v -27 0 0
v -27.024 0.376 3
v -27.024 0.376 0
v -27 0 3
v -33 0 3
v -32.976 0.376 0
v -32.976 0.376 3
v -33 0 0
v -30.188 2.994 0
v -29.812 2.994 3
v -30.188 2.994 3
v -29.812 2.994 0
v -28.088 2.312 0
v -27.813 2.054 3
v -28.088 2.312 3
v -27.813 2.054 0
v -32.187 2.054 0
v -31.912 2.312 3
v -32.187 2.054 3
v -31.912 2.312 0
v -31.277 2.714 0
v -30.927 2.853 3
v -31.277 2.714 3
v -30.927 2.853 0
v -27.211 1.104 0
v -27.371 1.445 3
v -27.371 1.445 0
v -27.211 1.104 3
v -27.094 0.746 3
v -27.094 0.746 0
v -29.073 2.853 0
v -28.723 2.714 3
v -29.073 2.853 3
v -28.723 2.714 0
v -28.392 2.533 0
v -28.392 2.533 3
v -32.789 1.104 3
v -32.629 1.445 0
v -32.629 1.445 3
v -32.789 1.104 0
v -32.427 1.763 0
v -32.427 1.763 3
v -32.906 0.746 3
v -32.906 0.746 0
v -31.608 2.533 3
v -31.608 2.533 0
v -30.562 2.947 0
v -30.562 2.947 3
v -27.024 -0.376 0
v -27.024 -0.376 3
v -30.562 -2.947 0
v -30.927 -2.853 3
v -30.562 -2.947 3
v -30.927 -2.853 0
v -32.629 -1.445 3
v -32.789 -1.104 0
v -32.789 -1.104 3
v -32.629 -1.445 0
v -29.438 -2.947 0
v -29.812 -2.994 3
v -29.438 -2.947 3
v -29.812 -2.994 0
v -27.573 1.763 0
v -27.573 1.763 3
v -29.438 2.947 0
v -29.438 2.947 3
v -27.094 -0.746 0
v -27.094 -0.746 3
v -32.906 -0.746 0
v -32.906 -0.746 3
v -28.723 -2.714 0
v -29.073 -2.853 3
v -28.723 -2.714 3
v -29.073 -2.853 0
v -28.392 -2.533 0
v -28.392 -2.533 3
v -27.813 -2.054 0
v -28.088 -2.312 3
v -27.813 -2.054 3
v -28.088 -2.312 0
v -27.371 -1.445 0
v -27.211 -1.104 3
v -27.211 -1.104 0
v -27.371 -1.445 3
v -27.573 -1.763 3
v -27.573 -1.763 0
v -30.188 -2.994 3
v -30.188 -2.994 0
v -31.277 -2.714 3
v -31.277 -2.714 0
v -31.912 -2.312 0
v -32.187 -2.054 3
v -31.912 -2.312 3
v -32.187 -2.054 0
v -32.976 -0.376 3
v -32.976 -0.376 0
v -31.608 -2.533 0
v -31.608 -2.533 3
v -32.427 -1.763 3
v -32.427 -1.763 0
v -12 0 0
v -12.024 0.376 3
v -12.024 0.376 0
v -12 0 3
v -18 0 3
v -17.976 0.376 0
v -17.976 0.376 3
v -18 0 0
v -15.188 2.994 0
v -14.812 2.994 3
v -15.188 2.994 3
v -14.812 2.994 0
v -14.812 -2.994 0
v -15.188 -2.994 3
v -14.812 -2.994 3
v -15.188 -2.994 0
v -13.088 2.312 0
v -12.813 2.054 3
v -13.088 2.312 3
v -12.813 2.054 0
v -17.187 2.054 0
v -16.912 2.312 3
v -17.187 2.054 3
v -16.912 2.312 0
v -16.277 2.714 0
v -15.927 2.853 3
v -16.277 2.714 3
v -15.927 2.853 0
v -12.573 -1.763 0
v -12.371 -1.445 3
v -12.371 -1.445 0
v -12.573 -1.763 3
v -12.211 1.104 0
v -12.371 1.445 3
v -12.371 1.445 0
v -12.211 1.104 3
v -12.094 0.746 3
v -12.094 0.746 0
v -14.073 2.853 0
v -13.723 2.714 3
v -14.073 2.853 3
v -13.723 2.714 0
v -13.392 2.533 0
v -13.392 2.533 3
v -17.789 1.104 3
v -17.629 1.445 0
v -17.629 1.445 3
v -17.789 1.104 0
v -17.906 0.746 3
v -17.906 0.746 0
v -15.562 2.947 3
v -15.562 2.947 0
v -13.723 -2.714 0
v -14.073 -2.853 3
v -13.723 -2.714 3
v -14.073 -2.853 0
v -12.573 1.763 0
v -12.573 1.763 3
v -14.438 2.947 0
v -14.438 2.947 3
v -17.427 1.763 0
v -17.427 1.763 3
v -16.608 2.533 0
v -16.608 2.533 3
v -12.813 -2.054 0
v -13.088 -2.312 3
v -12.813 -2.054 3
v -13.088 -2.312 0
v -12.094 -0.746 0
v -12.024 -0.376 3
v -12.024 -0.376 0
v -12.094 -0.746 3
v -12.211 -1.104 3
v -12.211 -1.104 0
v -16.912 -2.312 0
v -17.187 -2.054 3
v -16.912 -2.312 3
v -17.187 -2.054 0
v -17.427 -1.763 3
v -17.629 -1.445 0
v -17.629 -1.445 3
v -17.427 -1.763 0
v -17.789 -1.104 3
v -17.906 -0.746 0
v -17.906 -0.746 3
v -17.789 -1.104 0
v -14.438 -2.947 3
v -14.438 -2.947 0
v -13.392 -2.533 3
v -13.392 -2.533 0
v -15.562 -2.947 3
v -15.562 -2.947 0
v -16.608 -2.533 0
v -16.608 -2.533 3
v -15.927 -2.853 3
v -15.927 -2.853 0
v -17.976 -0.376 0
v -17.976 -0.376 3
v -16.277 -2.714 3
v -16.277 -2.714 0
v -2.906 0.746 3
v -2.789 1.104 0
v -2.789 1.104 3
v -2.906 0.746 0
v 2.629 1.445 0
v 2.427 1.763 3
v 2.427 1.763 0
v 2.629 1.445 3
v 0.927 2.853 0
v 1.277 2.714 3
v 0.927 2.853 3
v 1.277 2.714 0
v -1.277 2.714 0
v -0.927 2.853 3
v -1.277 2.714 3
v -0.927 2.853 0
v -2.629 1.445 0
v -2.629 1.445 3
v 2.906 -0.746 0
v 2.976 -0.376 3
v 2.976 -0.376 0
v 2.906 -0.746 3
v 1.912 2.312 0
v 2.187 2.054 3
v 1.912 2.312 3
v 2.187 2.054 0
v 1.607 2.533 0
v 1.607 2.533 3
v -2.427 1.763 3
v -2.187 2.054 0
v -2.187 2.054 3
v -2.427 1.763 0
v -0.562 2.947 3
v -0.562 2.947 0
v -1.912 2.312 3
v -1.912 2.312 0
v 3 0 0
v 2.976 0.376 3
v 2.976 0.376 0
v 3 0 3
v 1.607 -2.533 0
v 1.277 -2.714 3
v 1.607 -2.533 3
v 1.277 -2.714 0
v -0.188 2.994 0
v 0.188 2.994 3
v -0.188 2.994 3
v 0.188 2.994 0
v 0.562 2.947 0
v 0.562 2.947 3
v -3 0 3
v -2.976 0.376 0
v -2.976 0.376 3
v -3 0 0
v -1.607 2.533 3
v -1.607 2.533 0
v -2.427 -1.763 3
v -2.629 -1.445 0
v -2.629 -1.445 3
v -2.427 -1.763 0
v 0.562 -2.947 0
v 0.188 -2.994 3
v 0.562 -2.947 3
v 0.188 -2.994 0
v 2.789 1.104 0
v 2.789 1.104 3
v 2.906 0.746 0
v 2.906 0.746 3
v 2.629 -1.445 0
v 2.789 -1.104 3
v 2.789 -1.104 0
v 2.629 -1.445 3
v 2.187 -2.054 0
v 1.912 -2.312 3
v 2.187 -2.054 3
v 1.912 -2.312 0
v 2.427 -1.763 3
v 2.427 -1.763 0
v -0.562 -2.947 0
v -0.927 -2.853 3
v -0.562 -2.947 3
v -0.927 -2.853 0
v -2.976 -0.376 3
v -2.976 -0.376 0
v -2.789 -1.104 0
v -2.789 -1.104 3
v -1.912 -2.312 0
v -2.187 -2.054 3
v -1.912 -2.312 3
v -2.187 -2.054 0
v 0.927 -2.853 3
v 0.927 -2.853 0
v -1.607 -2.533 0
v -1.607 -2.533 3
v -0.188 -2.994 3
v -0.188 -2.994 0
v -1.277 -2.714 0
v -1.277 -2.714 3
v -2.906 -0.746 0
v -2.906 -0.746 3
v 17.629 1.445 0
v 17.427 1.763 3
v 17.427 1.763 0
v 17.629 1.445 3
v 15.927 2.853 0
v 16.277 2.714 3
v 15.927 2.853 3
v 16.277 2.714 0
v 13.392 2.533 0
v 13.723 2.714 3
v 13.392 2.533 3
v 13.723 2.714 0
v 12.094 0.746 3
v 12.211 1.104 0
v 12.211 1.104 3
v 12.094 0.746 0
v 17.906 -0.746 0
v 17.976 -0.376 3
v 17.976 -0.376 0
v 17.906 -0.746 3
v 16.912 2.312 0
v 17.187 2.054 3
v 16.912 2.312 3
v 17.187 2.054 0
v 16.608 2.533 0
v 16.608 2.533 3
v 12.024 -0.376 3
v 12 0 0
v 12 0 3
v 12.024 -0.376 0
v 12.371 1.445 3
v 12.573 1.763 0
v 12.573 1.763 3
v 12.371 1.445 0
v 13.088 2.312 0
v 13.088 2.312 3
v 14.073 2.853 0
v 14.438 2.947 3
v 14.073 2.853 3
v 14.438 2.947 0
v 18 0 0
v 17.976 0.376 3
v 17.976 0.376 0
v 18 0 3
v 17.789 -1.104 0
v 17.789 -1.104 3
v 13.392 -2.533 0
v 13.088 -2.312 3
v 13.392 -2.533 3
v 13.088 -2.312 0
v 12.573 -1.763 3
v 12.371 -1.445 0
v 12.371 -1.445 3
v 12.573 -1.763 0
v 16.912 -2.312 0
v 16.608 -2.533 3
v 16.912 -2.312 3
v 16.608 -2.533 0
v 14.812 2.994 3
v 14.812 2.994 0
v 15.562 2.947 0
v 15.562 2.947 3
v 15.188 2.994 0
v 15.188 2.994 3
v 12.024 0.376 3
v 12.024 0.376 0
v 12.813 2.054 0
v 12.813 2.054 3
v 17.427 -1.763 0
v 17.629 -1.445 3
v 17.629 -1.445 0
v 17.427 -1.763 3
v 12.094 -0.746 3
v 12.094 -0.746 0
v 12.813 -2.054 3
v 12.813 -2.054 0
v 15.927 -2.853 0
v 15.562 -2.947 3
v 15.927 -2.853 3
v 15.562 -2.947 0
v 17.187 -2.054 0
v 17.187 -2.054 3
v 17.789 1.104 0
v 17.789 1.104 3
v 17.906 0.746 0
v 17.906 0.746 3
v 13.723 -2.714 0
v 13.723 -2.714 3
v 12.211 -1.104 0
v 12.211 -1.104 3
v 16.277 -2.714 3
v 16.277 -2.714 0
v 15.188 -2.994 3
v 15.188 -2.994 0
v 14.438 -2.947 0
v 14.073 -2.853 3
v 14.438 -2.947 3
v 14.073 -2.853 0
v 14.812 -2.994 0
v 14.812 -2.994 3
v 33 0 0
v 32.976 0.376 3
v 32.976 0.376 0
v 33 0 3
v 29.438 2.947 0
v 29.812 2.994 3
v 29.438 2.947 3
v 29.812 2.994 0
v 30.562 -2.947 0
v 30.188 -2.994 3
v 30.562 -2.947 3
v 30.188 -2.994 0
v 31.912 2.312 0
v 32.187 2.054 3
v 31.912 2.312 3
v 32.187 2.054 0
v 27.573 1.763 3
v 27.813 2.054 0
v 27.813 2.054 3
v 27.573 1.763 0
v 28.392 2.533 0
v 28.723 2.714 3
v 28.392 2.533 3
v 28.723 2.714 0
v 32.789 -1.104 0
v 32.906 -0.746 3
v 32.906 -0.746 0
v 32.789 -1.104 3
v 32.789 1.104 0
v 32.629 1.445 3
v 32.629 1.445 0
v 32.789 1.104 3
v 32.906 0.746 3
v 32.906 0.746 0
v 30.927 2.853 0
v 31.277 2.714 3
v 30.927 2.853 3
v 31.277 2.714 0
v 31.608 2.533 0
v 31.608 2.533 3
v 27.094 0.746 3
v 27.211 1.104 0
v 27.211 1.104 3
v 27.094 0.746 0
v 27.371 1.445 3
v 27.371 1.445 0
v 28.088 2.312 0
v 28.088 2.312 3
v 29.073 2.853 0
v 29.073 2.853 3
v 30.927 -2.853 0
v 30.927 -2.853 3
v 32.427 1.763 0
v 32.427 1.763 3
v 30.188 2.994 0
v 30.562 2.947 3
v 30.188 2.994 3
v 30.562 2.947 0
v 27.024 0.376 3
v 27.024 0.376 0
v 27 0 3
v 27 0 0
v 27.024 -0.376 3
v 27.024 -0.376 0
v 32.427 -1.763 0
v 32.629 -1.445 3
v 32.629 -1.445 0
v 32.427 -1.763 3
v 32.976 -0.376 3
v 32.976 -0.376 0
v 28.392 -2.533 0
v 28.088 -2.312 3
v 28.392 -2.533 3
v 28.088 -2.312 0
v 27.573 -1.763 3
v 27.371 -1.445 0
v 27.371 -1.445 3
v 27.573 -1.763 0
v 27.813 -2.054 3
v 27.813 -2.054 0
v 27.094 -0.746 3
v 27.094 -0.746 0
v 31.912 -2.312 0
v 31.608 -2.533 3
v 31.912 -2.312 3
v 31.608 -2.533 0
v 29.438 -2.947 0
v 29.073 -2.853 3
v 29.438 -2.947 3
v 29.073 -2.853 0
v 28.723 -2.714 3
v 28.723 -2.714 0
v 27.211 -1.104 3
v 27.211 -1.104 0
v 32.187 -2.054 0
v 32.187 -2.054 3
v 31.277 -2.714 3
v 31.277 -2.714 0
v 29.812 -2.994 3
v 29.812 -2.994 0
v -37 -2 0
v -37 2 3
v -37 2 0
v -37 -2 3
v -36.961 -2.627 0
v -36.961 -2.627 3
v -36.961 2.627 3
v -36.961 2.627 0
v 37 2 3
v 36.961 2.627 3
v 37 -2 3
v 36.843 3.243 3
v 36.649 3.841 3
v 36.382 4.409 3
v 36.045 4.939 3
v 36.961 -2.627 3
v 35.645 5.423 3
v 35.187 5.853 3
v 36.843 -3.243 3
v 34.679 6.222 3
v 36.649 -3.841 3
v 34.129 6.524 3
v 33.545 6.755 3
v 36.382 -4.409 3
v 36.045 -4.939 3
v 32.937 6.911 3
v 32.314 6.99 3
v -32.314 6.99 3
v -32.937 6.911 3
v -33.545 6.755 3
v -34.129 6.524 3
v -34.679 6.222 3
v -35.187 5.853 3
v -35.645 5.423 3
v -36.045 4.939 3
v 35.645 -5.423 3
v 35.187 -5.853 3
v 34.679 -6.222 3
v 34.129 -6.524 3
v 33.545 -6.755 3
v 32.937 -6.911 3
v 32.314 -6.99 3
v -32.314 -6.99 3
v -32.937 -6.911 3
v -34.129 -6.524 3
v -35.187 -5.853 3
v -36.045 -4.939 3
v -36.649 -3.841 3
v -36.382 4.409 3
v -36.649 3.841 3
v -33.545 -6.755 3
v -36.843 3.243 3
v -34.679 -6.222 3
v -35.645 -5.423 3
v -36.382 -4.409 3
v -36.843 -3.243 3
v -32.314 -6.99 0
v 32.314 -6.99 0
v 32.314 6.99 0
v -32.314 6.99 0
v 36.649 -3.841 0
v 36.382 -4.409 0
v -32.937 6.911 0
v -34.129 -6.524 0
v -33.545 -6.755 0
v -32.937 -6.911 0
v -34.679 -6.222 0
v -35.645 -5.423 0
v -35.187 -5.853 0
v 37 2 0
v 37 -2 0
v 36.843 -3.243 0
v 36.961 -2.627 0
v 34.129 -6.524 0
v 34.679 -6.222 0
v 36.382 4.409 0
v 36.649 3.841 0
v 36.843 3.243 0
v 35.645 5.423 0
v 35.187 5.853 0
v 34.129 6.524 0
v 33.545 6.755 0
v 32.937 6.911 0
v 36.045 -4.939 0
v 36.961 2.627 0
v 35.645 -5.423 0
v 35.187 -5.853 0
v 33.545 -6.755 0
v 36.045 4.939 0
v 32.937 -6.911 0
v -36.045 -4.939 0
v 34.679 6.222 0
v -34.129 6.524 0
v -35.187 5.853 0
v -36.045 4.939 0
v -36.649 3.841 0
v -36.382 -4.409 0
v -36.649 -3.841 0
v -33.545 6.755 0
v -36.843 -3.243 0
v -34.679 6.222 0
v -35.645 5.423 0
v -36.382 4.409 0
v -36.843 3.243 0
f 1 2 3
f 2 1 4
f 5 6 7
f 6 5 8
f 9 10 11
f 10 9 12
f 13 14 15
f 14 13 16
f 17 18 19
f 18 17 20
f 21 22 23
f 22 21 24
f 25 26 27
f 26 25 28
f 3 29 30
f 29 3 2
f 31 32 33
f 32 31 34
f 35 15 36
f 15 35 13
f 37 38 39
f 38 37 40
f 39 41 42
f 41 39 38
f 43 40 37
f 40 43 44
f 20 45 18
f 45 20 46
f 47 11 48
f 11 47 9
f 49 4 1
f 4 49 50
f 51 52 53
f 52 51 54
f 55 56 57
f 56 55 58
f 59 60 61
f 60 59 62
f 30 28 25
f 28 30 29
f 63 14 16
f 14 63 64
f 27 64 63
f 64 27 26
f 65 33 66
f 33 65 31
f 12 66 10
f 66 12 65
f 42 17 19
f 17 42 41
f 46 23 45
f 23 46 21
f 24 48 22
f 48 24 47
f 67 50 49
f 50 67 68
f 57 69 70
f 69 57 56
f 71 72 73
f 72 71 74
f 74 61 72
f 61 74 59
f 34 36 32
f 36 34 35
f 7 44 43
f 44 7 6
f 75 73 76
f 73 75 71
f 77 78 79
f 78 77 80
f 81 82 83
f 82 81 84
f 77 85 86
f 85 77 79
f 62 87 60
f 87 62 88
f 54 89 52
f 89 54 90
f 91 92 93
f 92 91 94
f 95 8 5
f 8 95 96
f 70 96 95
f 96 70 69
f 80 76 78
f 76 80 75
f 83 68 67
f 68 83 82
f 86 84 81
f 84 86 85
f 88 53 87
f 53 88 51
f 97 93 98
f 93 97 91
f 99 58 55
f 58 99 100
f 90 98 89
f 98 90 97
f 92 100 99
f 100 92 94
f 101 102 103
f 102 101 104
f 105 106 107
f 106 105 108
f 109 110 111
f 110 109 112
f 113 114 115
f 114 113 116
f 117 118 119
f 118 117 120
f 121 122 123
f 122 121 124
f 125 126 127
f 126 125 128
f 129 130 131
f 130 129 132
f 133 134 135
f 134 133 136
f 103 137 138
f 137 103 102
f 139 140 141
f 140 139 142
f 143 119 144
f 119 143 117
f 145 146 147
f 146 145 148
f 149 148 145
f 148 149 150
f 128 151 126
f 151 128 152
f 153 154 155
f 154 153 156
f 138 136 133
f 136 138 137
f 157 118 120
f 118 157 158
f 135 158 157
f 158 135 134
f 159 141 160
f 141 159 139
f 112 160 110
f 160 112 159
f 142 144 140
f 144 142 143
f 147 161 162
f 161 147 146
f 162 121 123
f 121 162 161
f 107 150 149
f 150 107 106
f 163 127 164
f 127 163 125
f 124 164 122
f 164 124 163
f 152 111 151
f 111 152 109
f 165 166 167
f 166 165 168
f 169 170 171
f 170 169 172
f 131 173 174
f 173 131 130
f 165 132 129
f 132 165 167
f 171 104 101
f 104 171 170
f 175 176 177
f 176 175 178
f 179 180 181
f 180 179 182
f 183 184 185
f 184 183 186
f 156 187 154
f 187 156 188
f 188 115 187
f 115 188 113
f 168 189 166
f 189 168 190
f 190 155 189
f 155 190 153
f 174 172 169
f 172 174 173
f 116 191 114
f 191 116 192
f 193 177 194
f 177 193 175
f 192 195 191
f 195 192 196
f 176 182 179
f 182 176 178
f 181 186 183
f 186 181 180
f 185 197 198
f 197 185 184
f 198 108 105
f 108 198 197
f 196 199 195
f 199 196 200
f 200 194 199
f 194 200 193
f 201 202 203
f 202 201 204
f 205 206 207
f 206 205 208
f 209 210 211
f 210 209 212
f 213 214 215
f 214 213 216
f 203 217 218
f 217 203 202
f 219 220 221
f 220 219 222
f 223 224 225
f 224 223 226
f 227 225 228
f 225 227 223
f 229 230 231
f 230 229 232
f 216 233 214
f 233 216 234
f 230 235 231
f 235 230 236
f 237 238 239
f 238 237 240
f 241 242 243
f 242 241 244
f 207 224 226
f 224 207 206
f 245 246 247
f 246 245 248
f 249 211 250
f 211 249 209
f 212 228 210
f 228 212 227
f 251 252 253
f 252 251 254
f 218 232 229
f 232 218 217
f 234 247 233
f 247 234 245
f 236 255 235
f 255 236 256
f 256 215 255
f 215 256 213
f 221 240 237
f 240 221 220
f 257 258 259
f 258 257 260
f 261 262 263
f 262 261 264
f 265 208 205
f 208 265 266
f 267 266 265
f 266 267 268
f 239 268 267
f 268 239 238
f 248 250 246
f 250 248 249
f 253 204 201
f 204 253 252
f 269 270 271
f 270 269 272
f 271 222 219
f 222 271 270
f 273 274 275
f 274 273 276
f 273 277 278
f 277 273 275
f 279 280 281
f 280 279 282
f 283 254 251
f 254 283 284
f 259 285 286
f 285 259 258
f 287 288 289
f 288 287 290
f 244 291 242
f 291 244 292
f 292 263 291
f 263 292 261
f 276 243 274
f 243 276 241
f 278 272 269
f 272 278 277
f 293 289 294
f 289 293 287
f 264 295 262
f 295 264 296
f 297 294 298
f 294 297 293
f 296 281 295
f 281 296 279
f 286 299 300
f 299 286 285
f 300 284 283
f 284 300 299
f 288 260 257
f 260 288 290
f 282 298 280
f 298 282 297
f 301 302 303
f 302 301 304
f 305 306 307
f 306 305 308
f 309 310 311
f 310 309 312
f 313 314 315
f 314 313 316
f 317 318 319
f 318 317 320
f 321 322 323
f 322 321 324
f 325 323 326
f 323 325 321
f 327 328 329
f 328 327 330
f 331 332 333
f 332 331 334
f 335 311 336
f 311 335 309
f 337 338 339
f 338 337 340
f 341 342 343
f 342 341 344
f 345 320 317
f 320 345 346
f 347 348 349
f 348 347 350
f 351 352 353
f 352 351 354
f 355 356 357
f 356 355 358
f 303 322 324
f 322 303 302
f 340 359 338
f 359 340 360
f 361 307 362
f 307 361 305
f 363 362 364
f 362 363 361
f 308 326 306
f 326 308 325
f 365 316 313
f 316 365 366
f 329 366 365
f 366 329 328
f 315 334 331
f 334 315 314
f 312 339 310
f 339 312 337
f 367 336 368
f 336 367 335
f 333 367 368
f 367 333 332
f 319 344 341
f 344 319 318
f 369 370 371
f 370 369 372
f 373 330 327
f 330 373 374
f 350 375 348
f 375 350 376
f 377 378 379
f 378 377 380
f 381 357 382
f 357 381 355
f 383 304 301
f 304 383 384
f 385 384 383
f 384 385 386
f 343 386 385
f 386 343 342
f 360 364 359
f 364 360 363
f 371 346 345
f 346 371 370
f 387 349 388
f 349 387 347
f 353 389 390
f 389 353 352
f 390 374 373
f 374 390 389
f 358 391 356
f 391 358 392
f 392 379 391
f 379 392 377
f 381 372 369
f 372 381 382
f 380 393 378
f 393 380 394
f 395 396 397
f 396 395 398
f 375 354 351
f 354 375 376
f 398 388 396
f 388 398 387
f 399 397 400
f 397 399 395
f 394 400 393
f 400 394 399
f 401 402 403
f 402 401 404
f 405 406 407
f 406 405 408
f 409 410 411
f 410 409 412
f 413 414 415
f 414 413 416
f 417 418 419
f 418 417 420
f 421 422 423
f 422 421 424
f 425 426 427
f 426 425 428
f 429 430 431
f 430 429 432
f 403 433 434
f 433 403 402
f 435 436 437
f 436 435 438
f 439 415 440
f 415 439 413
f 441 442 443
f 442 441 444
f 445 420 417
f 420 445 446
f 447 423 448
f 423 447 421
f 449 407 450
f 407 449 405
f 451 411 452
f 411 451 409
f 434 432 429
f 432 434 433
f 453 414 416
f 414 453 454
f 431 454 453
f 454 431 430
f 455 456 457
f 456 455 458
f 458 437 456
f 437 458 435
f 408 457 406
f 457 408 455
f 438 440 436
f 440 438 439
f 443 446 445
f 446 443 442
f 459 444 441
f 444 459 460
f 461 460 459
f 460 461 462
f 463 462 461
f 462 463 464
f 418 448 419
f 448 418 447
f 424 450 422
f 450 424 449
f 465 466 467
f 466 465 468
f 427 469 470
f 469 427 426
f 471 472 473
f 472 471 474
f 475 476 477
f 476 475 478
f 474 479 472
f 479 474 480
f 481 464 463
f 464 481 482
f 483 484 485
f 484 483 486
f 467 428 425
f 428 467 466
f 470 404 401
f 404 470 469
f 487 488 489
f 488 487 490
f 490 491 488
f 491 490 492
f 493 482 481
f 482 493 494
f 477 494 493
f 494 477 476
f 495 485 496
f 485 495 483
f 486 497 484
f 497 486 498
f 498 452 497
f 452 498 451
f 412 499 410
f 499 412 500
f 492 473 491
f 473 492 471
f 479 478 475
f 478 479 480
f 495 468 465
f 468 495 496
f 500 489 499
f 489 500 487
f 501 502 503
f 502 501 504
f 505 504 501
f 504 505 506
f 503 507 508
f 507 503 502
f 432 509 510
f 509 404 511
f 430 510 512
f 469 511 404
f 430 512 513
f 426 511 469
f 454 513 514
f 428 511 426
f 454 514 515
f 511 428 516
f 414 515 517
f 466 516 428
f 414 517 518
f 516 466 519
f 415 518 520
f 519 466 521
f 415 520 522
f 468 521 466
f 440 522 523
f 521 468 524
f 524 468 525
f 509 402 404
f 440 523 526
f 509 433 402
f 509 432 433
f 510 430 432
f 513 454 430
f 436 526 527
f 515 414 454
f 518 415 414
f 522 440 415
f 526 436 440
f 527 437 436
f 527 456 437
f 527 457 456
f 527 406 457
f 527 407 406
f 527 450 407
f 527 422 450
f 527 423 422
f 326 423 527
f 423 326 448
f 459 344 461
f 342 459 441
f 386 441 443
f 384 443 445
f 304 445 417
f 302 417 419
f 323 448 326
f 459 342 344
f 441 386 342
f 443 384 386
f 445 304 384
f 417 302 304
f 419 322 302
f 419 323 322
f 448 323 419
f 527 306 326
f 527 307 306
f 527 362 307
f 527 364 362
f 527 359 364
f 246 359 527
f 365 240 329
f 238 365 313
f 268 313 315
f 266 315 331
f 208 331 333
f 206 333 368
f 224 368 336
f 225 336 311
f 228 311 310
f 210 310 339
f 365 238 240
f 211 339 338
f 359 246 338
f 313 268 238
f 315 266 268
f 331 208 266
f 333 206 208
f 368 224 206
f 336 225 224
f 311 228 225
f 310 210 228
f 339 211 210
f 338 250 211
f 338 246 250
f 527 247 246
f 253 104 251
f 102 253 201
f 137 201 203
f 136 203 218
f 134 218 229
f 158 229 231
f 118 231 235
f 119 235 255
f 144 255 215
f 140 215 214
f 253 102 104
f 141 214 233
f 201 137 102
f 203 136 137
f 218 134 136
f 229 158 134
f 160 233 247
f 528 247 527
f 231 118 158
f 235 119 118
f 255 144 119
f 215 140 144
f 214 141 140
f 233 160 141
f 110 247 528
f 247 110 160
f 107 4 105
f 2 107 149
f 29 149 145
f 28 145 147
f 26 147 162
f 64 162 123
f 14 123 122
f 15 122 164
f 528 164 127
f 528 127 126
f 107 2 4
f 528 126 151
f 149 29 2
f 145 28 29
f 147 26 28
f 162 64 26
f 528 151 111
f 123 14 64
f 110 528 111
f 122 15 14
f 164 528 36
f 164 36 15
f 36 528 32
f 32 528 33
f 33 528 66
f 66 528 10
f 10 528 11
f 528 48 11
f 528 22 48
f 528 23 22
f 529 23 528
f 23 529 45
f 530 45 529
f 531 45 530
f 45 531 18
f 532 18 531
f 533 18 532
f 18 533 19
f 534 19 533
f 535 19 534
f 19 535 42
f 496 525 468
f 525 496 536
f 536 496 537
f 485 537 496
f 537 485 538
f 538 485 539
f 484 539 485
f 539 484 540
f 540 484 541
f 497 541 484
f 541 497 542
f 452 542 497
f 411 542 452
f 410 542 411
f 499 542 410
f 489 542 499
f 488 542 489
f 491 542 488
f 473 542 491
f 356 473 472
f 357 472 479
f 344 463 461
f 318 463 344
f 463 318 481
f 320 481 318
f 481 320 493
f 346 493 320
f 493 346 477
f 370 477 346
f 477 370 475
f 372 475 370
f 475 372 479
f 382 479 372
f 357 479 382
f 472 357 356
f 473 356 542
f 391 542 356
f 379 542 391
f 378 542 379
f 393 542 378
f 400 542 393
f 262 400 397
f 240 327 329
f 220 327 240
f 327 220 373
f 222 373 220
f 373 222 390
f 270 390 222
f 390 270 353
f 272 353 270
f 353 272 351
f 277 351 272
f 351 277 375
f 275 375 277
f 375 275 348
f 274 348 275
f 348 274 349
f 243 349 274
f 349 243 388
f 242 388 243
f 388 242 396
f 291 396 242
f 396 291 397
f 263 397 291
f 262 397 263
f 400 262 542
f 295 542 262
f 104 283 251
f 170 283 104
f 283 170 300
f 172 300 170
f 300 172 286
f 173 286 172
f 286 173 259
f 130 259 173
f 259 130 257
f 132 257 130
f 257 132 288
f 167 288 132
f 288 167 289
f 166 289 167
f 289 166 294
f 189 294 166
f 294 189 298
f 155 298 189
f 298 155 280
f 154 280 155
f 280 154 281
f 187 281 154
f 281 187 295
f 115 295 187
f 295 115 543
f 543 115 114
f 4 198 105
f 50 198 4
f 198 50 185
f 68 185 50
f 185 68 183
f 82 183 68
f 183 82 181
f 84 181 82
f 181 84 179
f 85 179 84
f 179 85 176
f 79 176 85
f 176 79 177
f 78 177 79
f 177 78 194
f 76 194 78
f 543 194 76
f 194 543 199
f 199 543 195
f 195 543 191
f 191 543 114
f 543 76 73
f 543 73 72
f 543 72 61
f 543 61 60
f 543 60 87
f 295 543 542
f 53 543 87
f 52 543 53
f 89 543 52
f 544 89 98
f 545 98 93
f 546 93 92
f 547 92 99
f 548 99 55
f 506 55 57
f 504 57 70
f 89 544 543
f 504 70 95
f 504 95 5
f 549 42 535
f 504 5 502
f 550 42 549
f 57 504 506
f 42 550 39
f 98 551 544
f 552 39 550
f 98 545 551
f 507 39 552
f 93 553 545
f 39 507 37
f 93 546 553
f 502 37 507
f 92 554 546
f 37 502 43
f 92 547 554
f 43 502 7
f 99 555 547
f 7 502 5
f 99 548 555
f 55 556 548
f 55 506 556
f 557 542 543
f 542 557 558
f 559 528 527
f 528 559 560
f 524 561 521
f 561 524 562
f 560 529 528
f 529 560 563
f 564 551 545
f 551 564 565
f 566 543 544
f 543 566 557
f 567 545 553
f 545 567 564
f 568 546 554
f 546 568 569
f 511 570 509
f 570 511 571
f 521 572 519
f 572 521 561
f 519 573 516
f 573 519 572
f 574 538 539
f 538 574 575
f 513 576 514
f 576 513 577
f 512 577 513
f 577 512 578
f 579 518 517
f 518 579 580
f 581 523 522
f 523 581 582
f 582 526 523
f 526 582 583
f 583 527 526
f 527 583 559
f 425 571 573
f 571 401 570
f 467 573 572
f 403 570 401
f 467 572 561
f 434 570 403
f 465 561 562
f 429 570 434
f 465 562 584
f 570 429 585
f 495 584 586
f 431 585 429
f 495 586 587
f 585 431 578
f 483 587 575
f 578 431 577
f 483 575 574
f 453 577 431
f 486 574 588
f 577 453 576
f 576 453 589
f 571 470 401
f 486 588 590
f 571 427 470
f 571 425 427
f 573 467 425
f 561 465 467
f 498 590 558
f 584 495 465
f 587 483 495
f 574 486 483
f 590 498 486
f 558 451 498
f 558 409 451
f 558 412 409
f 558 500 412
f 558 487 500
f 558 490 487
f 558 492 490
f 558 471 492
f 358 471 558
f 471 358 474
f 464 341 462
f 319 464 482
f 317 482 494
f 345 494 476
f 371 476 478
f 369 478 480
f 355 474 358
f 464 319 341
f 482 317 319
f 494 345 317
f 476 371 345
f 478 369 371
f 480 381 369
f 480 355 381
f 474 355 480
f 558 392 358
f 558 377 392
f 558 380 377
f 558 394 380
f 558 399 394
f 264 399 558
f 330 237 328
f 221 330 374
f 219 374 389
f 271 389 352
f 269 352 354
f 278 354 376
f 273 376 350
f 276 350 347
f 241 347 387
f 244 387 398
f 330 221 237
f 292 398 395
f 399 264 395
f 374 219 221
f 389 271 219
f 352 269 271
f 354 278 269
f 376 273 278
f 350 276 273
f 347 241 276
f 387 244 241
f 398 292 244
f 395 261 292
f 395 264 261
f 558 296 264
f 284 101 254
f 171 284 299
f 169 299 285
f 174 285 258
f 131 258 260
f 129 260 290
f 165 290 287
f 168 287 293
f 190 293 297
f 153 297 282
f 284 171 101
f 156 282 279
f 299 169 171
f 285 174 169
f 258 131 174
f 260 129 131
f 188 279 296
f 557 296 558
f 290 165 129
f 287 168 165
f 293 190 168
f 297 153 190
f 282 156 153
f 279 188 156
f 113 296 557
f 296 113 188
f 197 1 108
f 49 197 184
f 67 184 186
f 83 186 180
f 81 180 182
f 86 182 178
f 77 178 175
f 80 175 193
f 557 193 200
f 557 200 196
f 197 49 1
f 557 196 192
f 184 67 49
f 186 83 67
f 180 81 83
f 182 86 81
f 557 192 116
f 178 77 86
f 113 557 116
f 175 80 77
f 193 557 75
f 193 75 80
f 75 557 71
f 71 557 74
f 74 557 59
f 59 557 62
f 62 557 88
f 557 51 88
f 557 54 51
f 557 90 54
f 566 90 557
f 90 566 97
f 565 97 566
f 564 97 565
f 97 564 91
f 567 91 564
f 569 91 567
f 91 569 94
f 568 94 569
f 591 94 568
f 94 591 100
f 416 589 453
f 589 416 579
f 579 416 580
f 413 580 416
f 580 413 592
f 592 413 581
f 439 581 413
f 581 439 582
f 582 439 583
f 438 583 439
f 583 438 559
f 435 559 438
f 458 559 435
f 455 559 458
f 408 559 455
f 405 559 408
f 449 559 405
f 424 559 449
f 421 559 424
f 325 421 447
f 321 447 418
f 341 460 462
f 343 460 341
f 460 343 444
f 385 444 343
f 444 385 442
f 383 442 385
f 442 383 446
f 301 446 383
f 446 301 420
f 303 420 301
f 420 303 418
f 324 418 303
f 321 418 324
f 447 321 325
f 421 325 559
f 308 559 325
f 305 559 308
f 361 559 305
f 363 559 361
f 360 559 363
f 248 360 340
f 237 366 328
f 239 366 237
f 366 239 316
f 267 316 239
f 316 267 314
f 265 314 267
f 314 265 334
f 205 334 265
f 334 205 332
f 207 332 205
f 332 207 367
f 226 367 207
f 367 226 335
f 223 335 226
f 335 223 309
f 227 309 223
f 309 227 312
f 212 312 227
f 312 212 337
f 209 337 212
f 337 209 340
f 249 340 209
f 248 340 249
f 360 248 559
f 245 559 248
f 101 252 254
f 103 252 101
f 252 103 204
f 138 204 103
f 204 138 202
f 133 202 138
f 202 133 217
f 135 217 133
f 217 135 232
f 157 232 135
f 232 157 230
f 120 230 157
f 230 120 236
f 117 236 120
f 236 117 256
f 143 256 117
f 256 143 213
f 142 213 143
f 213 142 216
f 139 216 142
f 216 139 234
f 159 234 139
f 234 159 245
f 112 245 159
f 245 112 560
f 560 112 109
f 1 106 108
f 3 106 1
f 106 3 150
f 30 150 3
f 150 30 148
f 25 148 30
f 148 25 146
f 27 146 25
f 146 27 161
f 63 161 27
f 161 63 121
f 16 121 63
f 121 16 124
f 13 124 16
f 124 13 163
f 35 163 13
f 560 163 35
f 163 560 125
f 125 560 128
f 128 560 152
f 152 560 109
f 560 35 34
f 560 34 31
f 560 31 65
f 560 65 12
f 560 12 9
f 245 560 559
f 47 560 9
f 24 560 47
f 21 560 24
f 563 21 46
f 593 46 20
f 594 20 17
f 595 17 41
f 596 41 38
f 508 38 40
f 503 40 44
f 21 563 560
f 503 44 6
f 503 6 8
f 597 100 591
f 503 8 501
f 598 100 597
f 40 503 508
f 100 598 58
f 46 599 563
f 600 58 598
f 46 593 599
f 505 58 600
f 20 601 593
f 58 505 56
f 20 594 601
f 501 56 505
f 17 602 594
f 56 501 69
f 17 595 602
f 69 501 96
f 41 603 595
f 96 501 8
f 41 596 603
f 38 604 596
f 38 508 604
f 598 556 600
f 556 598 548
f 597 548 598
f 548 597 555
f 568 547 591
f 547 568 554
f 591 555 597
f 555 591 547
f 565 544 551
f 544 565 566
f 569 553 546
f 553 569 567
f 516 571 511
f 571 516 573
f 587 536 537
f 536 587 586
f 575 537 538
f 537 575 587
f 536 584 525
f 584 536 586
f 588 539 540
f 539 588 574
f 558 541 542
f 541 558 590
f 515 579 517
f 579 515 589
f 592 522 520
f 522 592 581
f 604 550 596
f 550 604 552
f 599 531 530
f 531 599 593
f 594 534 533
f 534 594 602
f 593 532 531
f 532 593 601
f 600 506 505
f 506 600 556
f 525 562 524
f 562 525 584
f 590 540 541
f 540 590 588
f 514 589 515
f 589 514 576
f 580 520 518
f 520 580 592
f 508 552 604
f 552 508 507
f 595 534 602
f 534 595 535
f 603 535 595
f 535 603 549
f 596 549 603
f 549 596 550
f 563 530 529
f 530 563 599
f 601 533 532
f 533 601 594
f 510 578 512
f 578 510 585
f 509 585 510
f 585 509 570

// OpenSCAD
// Generated by SolidPython 1.1.3 on 2023-03-12 22:01:29
$fn = 50;


difference() {
	union() {
		translate(v = [0, 0, 0]) {
			rotate(a = [0, 0, 0]) {
				hull() {
					translate(v = [-32.0000000000, 2.0000000000, 0]) {
						rotate(a = [0, 0, 0]) {
							translate(v = [0, 0, 0]) {
								rotate(a = [0, 0, 0]) {
									cylinder(h = 3, r = 5);
								}
							}
						}
					}
					translate(v = [32.0000000000, 2.0000000000, 0]) {
						rotate(a = [0, 0, 0]) {
							translate(v = [0, 0, 0]) {
								rotate(a = [0, 0, 0]) {
									cylinder(h = 3, r = 5);
								}
							}
						}
					}
					translate(v = [-32.0000000000, -2.0000000000, 0]) {
						rotate(a = [0, 0, 0]) {
							translate(v = [0, 0, 0]) {
								rotate(a = [0, 0, 0]) {
									cylinder(h = 3, r = 5);
								}
							}
						}
					}
					translate(v = [32.0000000000, -2.0000000000, 0]) {
						rotate(a = [0, 0, 0]) {
							translate(v = [0, 0, 0]) {
								rotate(a = [0, 0, 0]) {
									cylinder(h = 3, r = 5);
								}
							}
						}
					}
				}
			}
		}
	}
	union() {
		translate(v = [-30.0000000000, 0.0000000000, 0]) {
			rotate(a = [0, 0, 0]) {
				translate(v = [0, 0, -50]) {
					rotate(a = [0, 0, 0]) {
						cylinder(h = 100, r = 3.0000000000);
					}
				}
			}
		}
		translate(v = [-15.0000000000, 0.0000000000, 0]) {
			rotate(a = [0, 0, 0]) {
				translate(v = [0, 0, -50]) {
					rotate(a = [0, 0, 0]) {
						cylinder(h = 100, r = 3.0000000000);
					}
				}
			}
		}
		translate(v = [0.0000000000, 0.0000000000, 0]) {
			rotate(a = [0, 0, 0]) {
				translate(v = [0, 0, -50]) {
					rotate(a = [0, 0, 0]) {
						cylinder(h = 100, r = 3.0000000000);
					}
				}
			}
		}
		translate(v = [15.0000000000, 0.0000000000, 0]) {
			rotate(a = [0, 0, 0]) {
				translate(v = [0, 0, -50]) {
					rotate(a = [0, 0, 0]) {
						cylinder(h = 100, r = 3.0000000000);
					}
				}
			}
		}
		translate(v = [30.0000000000, 0.0000000000, 0]) {
			rotate(a = [0, 0, 0]) {
				translate(v = [0, 0, -50]) {
					rotate(a = [0, 0, 0]) {
						cylinder(h = 100, r = 3.0000000000);
					}
				}
			}
		}
	}
}
/***********************************************
*********      SolidPython code:      **********
************************************************
 
from solid import *
import os
import subprocess

import oomB

import opsc_library_gen

mode = "laser"
#mode = "3d_print"

defined_objects = {}

radius_dict = {}
countersunk_dict = {}


def set_mode(m):
    global mode
    mode = m
    radius_dict['M6'] = 6.5/2
    radius_dict['M3'] = 3.3/2
    if mode == "laser":
        radius_dict['M6'] = 6/2
        radius_dict['M3'] = 3/2

    countersunk_dict['M3'] = {}
    countersunk_dict['M3']['little_rad'] = radius_dict['M3']
    countersunk_dict['M3']['big_rad'] = (5.5+0.6)/2
    if mode == "laser":
        countersunk_dict['M3']['big_rad'] = (4.75+0.6)/2
        countersunk_dict['M3']['little_rad'] = (4.75+0.6)/2

    countersunk_dict['M3']['height'] = 1.7


def opsc_make_object(filename, objects, save_type="none",resolution=50, layers = 1, tilediff = 200, mode="laser", overwrite=True):
    if overwrite or not os.path.exists(filename):
        set_mode(mode)
        save_type = save_type.lower()
        os.makedirs(os.path.dirname(filename), exist_ok=True)
        final_object = opsc_get_object(objects, mode = mode)
        # Save the final object to the specified filename    
        scad_render_to_file(final_object, filename, file_header='$fn = %s;' % resolution, include_orig_code=True)
        if mode == "laser":
            filename_laser = filename.replace(".scad","-flat.scad")
            scad_render_to_file(getLaser(final_object, layers=layers, tilediff=tilediff), filename_laser, file_header='$fn = %s;' % resolution, include_orig_code=True)
            if save_type == "all":
                saveToAll(filename_laser)
            elif save_type == "dxf":
                saveToDxf(filename_laser)
        if save_type == "all":
            saveToAll(filename)
        elif save_type == "dxf":
            saveToDxf(filename)


def opsc_get_object(objects, mode = "laser"):
    # Create the solidpython objects only include the positive objects and if they don't have inclusion or their inclusion is either all or mode
    # Initialize an empty list to store the results
    positive_objects = []

    # Iterate over the "objects" list
    for obj in objects:
        # Check if the current object has a "type" key with a value of "positive"
        if obj['type'] == 'positive':
            # Check if the current object has an "inclusion" key and its value matches "mode",
            # or if the current object does not have an "inclusion" key at all
            if not 'inclusion' in obj or obj['inclusion'] == "all" or obj['inclusion'] == mode:
                # Call the "get_opsc_item" function with the current object as an argument
                opsc_item = get_opsc_item(obj)
                # Add the result to the "positive_objects" list
                positive_objects.append(opsc_item)
# Initialize an empty list to store the results
    negative_objects = []

    # Iterate over the "objects" list
    for obj in objects:
        # Check if the current object has a "type" key with a value of "negative"
        if obj['type'] == 'negative':
            # Check if the current object has an "inclusion" key and its value matches "mode",
            # or if the current object does not have an "inclusion" key at all
            if not 'inclusion' in obj or obj['inclusion'] == "all" or obj['inclusion'] == mode:
                # Call the "get_opsc_item" function with the current object as an argument
                opsc_item = get_opsc_item(obj)
                # Add the result to the "negative_objects" list
                negative_objects.append(opsc_item)
    
    #positive_objects = [get_opsc_item(obj) for obj in objects if obj['type'] == 'positive']
    #negative_objects = [get_opsc_item(obj) for obj in objects if obj['type'] == 'negative']
    # Union the positive objects
    positive_object = union()(*positive_objects)
    # Union the negative objects
    negative_object = union()(*negative_objects)
    # Create the final object by subtracting the negative objects from the positive objects
    return difference()(positive_object, negative_object)

def get_opsc_item(params):
    # A dictionary to map radius string values to numerical values
    #radius_dict = {'small': 5, 'medium': 10, 'large': 15}
    # An array of function names for basic shapes
    basic_shapes = ['cube', 'sphere', 'cylinder']
    
    # An array of function names for other shapes
    other_shapes = ['hole', 'slot', 'rounded_rectangle', 'countersunk']
    


    # Convert radius to r if present, and remove radius from the params dictionary
    if 'radius' in params:
        if isinstance(params['radius'], str):
            # Use the radius_dict to map the radius string value to a numerical value
            params['r'] = radius_dict[params['radius']]
        else:
            params['r'] = params['radius']
        del params['radius']
    

    # Check if the object type is a basic shape
    if params['shape'] in basic_shapes:
        # Remove shape and unexpected dictionary values
        allowed_keys = {'size', 'r', 'r1', 'r2', 'd', 'h', 'rw', 'rh', 'dw', 'dh'}
        shape_params = {k: v for k, v in params.items() if k in allowed_keys}

        # Call the corresponding function for the shape parameter, using ** notation to pass the shape_params dictionary as keyword arguments
        return get_opsc_transform(params,globals()[params['shape']](**shape_params))
    
    # If the object type is not a basic shape, check if it's a defined object or one of the other shapes
    elif params['shape'] in other_shapes:
        # Call the corresponding function for the shape parameter, passing the params dictionary as an argument
        p2 = copy.deepcopy(params)
        p2["pos"] = [0,0,0]
        return get_opsc_transform(params,globals()[params['shape']](p2))
    
    # If the object is not a basic shape or a defined object, try to import it from a .scad file
    else:
        obj = defined_objects[params['shape']]
        return get_opsc_transform(params,obj)

def get_opsc_transform(params, solid_obj):
    # Rotate the object based on the 'rot' field in the params dictionary, or the 'rotX', 'rotY', and 'rotZ' fields if 'rot' is not present
    rot = params.get('rot', [])
    if rot:
        rotX, rotY, rotZ = rot
    else:
        rotX = params.get('rotX', 0)
        rotY = params.get('rotY', 0)
        rotZ = params.get('rotZ', 0)
    solid_obj = rotate([rotX, rotY, rotZ])(solid_obj)

    # Translate the object based on the 'pos' field in the params dictionary, or the 'x', 'y', and 'z' fields if 'pos' is not present
    pos = params.get('pos', [])
    if pos:
        x, y, z = pos
    else:
        x = params.get('x', 0)
        y = params.get('y', 0)
        z = params.get('z', 0)
    solid_obj = translate([x, y, z])(solid_obj)
    return solid_obj


import random

def opsc_easy_array(type, shape, repeats, pos_start, shift_arr, **kwargs):
    for i in range(0,3):
        repeats.append(1)
        pos_start.append(0)
        shift_arr.append(0)
    return_objects = []

    for x in range(0,repeats[0]):
        for y in range(0,repeats[1]):
            for z in range(0,repeats[2]):
                return_objects.append(opsc_easy(type, shape, pos=[pos_start[0]+x*shift_arr[0],pos_start[1]+y*shift_arr[1],pos_start[2]+z*shift_arr[2]], **kwargs))
    return return_objects                



def opsc_easy(type, shape, **kwargs):
    obj = {
        'type': type,
        'shape': shape
    }
    for param in ['size', 'r', 'r1', 'r2', 'd', 'h', 'rw', 'rh', 'dw', 'dh', 'pos', 'x', 'y', 'z', 'rot', 'rotX', 'rotY', 'rotZ', "w", "inclusion"]:
        if param in kwargs:
            obj[param] = kwargs[param]
    return obj

def hole(params):
    p2 = copy.deepcopy(params)  
    # Check if the radius is a string and replace it with the corresponding value from the dictionary
    if isinstance(p2['r'], str):
        p2['r'] = radius_dict[p2['r']]
    
    # Set the height to 100 if not specified
    if 'h' not in p2:
        p2['h'] = 100
        p2["pos"] = [0,0,-50]
    p2["center"] = True
    # Create the cylinder object
    p2["shape"] = "cylinder"
    p2["type"] = "positive"

    return get_opsc_item(p2)

import copy

def countersunk(params):
    p2 = copy.deepcopy(params)
    counter_rad = p2['r']
    p2['r'] = radius_dict[p2['r']]
    hp = copy.deepcopy(p2)
    hp["type"] = "positive"
    hp["shape"] = "hole"
    del hp["rot"]
    hol = get_opsc_item(hp)
    
    cp = copy.deepcopy(p2)
    cp["h"] = countersunk_dict[counter_rad]["height"]
    cp["r2"] = countersunk_dict[counter_rad]["little_rad"]
    cp["r1"] = countersunk_dict[counter_rad]["big_rad"]
    del cp["r"]
    del cp["rot"]
    cp["type"] = "positive"
    cp["shape"] = "cylinder"
    cp["pos"] = [0,0,0]

    top = get_opsc_item(cp)
    return union()(hol,top)



def slot(params):  
    p2 = copy.deepcopy(params) 
    if isinstance(p2['r'], str):
        p2['r'] = radius_dict[p2['r']]
    p2["type"] = "positive"
    p2["shape"] = "hole"
    del p2["rot"]
    p2["pos"] = [0,0,0]
    left = copy.deepcopy(p2)
    right = copy.deepcopy(p2)
    left["pos"][0] = p2["w"] / 2 - p2["r"] 
    
    right["pos"][0] = -p2["w"] / 2 + p2["r"] 
    pass
    leftObj = get_opsc_item(left)
    rightObj = get_opsc_item(right)
    return hull()(leftObj, rightObj)

def rounded_rectangle(params):   
    p2 = copy.deepcopy(params) 
    p2["h"] = p2["size"][2]
    p2["pos"] = p2.get("pos", [0, 0, 0]) 
    p2["type"] = "positive"
    p2["shape"] = "hole"
    p2["pos"] = [0,0,0]
    
    if 'rot' in p2:
        del p2["rot"]   
    if 'r' not in p2:
        p2["r"] = 5 
    tl = copy.deepcopy(p2)
    tr = copy.deepcopy(p2)
    bl = copy.deepcopy(p2)
    br = copy.deepcopy(p2)
    tl["pos"][0] = -(p2["size"][0] - p2["r"]*2)/2
    tl["pos"][1] = (p2["size"][1] - p2["r"]*2)/2
    tr["pos"][0] = (p2["size"][0] - p2["r"]*2)/2
    tr["pos"][1] = (p2["size"][1] - p2["r"]*2)/2
    bl["pos"][0] = -(p2["size"][0] - p2["r"]*2)/2
    bl["pos"][1] = -(p2["size"][1] - p2["r"]*2)/2
    br["pos"][0] = (p2["size"][0] - p2["r"]*2)/2
    br["pos"][1] = -(p2["size"][1] - p2["r"]*2)/2
    del tl["size"]
    del tr["size"]
    del bl["size"]
    del br["size"]
    tlo = get_opsc_item(tl)
    tro = get_opsc_item(tr)
    blo = get_opsc_item(bl)
    bro = get_opsc_item(br)    
    return hull()(tlo, tro, blo, bro)



def import_scad_object(filename):
    # Import the .scad file and convert it to a solidpython object
    #filename = "parts"
    obj = import_scad(filename)
    return obj.main()
    


import os
import solid as solidpython

# A dictionary to store the defined objects


def load_scad_objects():
    opsc_library_gen.gen_library(defined_objects)

import random

def test(num_objects):
    objects = []
    for i in range(num_objects):
        # Choose a random shape
        #shape = random.choice(['cube', 'sphere', 'cylinder', 'hole', 'slot', "rounded_rectangle"])
        shape = random.choice(["rounded_rectangle"])

        # Choose a random type
        type = random.choice(['positive', 'negative'])
        
        # Create an empty object dictionary
        obj = {'shape': shape, 'type': type}
        
        # Set shape-specific parameters
        if obj['shape'] in ['cube']:
            obj['size'] =  [random.uniform(5, 15), random.uniform(5, 15), random.uniform(5, 15)]
        if obj['shape'] in ['rounded_rectangle']:
            obj['size'] =  [random.uniform(5, 15), random.uniform(5, 15), random.uniform(5, 15)]
            obj['r'] = random.uniform(0.5, 5)
        elif obj['shape'] == 'sphere':
            obj['r'] = random.uniform(5, 15)
        elif obj['shape'] in ['cylinder', 'hole']:
            obj['r'] = random.uniform(0.5, 5)
            obj['h'] = random.uniform(5, 15)
        elif obj['shape'] == 'slot':
            obj['r'] = random.uniform(0.5, 5)
            obj['h'] = random.uniform(5, 15)
            obj['w'] = random.uniform(5, 15)
        
        # Set a random position and rotation
        obj['pos'] = [random.uniform(-20, 20), random.uniform(-20, 20), random.uniform(-20, 20)]
        obj['rot'] = [random.uniform(-180, 180), random.uniform(-180, 180), random.uniform(-180, 180)]
        
        # Add the object to the list
        objects.append(obj)
    return objects

####### old file saving
def saveToAll(fileIn):
    saveToDxf(fileIn)
    saveToPng(fileIn)
    saveToStl(fileIn)
    saveToSvg(fileIn)

def saveToDxf(fileIn, fileOut="", copy_to_laser=True):
    if fileOut == "":
        fileOut = fileIn.replace(".scad",".dxf")
    saveToFile(fileIn, fileOut)


    
def saveToPng(fileIn, fileOut="",extra="--render"):
    if fileOut == "":
        fileOut = fileIn.replace(".scad",".png")
    saveToFile(fileIn, fileOut)

def saveToStl(fileIn, fileOut=""):
    if fileOut == "":
        fileOut = fileIn.replace(".scad",".stl")
    saveToFile(fileIn, fileOut)
    
def saveToSvg(fileIn, fileOut=""):
    if fileOut == "":
        fileOut = fileIn.replace(".scad",".svg")
    saveToFile(fileIn, fileOut)

def saveToFile(fileIn, fileOut,extra=""):
    #extra = extra + " --colorscheme Tomorrow"

    launchStr = 'openscad -o "' + fileOut + '"' + extra + ' "' + fileIn + '"'
    if ".png" in fileOut:
        launchStr = launchStr + " --render"
    print("            saveToFile launch string: " + launchStr)
    subprocess.run(launchStr)
    x=0

def getLaser(final_object,start=1.5,layers=1,thickness=3,tilediff=200):
        rv= []

        for x in range(layers):
            rv.append(translate([0,x*tilediff,0])(
                    projection()(
                        intersection()(translate([-500,-500,start+x*thickness])(cube(size=[1000,1000,0.1])),
                            final_object
                        )
                    )
            )
            )
            
        return union()(rv)

set_mode("laser")
load_scad_objects() 
 
************************************************/
